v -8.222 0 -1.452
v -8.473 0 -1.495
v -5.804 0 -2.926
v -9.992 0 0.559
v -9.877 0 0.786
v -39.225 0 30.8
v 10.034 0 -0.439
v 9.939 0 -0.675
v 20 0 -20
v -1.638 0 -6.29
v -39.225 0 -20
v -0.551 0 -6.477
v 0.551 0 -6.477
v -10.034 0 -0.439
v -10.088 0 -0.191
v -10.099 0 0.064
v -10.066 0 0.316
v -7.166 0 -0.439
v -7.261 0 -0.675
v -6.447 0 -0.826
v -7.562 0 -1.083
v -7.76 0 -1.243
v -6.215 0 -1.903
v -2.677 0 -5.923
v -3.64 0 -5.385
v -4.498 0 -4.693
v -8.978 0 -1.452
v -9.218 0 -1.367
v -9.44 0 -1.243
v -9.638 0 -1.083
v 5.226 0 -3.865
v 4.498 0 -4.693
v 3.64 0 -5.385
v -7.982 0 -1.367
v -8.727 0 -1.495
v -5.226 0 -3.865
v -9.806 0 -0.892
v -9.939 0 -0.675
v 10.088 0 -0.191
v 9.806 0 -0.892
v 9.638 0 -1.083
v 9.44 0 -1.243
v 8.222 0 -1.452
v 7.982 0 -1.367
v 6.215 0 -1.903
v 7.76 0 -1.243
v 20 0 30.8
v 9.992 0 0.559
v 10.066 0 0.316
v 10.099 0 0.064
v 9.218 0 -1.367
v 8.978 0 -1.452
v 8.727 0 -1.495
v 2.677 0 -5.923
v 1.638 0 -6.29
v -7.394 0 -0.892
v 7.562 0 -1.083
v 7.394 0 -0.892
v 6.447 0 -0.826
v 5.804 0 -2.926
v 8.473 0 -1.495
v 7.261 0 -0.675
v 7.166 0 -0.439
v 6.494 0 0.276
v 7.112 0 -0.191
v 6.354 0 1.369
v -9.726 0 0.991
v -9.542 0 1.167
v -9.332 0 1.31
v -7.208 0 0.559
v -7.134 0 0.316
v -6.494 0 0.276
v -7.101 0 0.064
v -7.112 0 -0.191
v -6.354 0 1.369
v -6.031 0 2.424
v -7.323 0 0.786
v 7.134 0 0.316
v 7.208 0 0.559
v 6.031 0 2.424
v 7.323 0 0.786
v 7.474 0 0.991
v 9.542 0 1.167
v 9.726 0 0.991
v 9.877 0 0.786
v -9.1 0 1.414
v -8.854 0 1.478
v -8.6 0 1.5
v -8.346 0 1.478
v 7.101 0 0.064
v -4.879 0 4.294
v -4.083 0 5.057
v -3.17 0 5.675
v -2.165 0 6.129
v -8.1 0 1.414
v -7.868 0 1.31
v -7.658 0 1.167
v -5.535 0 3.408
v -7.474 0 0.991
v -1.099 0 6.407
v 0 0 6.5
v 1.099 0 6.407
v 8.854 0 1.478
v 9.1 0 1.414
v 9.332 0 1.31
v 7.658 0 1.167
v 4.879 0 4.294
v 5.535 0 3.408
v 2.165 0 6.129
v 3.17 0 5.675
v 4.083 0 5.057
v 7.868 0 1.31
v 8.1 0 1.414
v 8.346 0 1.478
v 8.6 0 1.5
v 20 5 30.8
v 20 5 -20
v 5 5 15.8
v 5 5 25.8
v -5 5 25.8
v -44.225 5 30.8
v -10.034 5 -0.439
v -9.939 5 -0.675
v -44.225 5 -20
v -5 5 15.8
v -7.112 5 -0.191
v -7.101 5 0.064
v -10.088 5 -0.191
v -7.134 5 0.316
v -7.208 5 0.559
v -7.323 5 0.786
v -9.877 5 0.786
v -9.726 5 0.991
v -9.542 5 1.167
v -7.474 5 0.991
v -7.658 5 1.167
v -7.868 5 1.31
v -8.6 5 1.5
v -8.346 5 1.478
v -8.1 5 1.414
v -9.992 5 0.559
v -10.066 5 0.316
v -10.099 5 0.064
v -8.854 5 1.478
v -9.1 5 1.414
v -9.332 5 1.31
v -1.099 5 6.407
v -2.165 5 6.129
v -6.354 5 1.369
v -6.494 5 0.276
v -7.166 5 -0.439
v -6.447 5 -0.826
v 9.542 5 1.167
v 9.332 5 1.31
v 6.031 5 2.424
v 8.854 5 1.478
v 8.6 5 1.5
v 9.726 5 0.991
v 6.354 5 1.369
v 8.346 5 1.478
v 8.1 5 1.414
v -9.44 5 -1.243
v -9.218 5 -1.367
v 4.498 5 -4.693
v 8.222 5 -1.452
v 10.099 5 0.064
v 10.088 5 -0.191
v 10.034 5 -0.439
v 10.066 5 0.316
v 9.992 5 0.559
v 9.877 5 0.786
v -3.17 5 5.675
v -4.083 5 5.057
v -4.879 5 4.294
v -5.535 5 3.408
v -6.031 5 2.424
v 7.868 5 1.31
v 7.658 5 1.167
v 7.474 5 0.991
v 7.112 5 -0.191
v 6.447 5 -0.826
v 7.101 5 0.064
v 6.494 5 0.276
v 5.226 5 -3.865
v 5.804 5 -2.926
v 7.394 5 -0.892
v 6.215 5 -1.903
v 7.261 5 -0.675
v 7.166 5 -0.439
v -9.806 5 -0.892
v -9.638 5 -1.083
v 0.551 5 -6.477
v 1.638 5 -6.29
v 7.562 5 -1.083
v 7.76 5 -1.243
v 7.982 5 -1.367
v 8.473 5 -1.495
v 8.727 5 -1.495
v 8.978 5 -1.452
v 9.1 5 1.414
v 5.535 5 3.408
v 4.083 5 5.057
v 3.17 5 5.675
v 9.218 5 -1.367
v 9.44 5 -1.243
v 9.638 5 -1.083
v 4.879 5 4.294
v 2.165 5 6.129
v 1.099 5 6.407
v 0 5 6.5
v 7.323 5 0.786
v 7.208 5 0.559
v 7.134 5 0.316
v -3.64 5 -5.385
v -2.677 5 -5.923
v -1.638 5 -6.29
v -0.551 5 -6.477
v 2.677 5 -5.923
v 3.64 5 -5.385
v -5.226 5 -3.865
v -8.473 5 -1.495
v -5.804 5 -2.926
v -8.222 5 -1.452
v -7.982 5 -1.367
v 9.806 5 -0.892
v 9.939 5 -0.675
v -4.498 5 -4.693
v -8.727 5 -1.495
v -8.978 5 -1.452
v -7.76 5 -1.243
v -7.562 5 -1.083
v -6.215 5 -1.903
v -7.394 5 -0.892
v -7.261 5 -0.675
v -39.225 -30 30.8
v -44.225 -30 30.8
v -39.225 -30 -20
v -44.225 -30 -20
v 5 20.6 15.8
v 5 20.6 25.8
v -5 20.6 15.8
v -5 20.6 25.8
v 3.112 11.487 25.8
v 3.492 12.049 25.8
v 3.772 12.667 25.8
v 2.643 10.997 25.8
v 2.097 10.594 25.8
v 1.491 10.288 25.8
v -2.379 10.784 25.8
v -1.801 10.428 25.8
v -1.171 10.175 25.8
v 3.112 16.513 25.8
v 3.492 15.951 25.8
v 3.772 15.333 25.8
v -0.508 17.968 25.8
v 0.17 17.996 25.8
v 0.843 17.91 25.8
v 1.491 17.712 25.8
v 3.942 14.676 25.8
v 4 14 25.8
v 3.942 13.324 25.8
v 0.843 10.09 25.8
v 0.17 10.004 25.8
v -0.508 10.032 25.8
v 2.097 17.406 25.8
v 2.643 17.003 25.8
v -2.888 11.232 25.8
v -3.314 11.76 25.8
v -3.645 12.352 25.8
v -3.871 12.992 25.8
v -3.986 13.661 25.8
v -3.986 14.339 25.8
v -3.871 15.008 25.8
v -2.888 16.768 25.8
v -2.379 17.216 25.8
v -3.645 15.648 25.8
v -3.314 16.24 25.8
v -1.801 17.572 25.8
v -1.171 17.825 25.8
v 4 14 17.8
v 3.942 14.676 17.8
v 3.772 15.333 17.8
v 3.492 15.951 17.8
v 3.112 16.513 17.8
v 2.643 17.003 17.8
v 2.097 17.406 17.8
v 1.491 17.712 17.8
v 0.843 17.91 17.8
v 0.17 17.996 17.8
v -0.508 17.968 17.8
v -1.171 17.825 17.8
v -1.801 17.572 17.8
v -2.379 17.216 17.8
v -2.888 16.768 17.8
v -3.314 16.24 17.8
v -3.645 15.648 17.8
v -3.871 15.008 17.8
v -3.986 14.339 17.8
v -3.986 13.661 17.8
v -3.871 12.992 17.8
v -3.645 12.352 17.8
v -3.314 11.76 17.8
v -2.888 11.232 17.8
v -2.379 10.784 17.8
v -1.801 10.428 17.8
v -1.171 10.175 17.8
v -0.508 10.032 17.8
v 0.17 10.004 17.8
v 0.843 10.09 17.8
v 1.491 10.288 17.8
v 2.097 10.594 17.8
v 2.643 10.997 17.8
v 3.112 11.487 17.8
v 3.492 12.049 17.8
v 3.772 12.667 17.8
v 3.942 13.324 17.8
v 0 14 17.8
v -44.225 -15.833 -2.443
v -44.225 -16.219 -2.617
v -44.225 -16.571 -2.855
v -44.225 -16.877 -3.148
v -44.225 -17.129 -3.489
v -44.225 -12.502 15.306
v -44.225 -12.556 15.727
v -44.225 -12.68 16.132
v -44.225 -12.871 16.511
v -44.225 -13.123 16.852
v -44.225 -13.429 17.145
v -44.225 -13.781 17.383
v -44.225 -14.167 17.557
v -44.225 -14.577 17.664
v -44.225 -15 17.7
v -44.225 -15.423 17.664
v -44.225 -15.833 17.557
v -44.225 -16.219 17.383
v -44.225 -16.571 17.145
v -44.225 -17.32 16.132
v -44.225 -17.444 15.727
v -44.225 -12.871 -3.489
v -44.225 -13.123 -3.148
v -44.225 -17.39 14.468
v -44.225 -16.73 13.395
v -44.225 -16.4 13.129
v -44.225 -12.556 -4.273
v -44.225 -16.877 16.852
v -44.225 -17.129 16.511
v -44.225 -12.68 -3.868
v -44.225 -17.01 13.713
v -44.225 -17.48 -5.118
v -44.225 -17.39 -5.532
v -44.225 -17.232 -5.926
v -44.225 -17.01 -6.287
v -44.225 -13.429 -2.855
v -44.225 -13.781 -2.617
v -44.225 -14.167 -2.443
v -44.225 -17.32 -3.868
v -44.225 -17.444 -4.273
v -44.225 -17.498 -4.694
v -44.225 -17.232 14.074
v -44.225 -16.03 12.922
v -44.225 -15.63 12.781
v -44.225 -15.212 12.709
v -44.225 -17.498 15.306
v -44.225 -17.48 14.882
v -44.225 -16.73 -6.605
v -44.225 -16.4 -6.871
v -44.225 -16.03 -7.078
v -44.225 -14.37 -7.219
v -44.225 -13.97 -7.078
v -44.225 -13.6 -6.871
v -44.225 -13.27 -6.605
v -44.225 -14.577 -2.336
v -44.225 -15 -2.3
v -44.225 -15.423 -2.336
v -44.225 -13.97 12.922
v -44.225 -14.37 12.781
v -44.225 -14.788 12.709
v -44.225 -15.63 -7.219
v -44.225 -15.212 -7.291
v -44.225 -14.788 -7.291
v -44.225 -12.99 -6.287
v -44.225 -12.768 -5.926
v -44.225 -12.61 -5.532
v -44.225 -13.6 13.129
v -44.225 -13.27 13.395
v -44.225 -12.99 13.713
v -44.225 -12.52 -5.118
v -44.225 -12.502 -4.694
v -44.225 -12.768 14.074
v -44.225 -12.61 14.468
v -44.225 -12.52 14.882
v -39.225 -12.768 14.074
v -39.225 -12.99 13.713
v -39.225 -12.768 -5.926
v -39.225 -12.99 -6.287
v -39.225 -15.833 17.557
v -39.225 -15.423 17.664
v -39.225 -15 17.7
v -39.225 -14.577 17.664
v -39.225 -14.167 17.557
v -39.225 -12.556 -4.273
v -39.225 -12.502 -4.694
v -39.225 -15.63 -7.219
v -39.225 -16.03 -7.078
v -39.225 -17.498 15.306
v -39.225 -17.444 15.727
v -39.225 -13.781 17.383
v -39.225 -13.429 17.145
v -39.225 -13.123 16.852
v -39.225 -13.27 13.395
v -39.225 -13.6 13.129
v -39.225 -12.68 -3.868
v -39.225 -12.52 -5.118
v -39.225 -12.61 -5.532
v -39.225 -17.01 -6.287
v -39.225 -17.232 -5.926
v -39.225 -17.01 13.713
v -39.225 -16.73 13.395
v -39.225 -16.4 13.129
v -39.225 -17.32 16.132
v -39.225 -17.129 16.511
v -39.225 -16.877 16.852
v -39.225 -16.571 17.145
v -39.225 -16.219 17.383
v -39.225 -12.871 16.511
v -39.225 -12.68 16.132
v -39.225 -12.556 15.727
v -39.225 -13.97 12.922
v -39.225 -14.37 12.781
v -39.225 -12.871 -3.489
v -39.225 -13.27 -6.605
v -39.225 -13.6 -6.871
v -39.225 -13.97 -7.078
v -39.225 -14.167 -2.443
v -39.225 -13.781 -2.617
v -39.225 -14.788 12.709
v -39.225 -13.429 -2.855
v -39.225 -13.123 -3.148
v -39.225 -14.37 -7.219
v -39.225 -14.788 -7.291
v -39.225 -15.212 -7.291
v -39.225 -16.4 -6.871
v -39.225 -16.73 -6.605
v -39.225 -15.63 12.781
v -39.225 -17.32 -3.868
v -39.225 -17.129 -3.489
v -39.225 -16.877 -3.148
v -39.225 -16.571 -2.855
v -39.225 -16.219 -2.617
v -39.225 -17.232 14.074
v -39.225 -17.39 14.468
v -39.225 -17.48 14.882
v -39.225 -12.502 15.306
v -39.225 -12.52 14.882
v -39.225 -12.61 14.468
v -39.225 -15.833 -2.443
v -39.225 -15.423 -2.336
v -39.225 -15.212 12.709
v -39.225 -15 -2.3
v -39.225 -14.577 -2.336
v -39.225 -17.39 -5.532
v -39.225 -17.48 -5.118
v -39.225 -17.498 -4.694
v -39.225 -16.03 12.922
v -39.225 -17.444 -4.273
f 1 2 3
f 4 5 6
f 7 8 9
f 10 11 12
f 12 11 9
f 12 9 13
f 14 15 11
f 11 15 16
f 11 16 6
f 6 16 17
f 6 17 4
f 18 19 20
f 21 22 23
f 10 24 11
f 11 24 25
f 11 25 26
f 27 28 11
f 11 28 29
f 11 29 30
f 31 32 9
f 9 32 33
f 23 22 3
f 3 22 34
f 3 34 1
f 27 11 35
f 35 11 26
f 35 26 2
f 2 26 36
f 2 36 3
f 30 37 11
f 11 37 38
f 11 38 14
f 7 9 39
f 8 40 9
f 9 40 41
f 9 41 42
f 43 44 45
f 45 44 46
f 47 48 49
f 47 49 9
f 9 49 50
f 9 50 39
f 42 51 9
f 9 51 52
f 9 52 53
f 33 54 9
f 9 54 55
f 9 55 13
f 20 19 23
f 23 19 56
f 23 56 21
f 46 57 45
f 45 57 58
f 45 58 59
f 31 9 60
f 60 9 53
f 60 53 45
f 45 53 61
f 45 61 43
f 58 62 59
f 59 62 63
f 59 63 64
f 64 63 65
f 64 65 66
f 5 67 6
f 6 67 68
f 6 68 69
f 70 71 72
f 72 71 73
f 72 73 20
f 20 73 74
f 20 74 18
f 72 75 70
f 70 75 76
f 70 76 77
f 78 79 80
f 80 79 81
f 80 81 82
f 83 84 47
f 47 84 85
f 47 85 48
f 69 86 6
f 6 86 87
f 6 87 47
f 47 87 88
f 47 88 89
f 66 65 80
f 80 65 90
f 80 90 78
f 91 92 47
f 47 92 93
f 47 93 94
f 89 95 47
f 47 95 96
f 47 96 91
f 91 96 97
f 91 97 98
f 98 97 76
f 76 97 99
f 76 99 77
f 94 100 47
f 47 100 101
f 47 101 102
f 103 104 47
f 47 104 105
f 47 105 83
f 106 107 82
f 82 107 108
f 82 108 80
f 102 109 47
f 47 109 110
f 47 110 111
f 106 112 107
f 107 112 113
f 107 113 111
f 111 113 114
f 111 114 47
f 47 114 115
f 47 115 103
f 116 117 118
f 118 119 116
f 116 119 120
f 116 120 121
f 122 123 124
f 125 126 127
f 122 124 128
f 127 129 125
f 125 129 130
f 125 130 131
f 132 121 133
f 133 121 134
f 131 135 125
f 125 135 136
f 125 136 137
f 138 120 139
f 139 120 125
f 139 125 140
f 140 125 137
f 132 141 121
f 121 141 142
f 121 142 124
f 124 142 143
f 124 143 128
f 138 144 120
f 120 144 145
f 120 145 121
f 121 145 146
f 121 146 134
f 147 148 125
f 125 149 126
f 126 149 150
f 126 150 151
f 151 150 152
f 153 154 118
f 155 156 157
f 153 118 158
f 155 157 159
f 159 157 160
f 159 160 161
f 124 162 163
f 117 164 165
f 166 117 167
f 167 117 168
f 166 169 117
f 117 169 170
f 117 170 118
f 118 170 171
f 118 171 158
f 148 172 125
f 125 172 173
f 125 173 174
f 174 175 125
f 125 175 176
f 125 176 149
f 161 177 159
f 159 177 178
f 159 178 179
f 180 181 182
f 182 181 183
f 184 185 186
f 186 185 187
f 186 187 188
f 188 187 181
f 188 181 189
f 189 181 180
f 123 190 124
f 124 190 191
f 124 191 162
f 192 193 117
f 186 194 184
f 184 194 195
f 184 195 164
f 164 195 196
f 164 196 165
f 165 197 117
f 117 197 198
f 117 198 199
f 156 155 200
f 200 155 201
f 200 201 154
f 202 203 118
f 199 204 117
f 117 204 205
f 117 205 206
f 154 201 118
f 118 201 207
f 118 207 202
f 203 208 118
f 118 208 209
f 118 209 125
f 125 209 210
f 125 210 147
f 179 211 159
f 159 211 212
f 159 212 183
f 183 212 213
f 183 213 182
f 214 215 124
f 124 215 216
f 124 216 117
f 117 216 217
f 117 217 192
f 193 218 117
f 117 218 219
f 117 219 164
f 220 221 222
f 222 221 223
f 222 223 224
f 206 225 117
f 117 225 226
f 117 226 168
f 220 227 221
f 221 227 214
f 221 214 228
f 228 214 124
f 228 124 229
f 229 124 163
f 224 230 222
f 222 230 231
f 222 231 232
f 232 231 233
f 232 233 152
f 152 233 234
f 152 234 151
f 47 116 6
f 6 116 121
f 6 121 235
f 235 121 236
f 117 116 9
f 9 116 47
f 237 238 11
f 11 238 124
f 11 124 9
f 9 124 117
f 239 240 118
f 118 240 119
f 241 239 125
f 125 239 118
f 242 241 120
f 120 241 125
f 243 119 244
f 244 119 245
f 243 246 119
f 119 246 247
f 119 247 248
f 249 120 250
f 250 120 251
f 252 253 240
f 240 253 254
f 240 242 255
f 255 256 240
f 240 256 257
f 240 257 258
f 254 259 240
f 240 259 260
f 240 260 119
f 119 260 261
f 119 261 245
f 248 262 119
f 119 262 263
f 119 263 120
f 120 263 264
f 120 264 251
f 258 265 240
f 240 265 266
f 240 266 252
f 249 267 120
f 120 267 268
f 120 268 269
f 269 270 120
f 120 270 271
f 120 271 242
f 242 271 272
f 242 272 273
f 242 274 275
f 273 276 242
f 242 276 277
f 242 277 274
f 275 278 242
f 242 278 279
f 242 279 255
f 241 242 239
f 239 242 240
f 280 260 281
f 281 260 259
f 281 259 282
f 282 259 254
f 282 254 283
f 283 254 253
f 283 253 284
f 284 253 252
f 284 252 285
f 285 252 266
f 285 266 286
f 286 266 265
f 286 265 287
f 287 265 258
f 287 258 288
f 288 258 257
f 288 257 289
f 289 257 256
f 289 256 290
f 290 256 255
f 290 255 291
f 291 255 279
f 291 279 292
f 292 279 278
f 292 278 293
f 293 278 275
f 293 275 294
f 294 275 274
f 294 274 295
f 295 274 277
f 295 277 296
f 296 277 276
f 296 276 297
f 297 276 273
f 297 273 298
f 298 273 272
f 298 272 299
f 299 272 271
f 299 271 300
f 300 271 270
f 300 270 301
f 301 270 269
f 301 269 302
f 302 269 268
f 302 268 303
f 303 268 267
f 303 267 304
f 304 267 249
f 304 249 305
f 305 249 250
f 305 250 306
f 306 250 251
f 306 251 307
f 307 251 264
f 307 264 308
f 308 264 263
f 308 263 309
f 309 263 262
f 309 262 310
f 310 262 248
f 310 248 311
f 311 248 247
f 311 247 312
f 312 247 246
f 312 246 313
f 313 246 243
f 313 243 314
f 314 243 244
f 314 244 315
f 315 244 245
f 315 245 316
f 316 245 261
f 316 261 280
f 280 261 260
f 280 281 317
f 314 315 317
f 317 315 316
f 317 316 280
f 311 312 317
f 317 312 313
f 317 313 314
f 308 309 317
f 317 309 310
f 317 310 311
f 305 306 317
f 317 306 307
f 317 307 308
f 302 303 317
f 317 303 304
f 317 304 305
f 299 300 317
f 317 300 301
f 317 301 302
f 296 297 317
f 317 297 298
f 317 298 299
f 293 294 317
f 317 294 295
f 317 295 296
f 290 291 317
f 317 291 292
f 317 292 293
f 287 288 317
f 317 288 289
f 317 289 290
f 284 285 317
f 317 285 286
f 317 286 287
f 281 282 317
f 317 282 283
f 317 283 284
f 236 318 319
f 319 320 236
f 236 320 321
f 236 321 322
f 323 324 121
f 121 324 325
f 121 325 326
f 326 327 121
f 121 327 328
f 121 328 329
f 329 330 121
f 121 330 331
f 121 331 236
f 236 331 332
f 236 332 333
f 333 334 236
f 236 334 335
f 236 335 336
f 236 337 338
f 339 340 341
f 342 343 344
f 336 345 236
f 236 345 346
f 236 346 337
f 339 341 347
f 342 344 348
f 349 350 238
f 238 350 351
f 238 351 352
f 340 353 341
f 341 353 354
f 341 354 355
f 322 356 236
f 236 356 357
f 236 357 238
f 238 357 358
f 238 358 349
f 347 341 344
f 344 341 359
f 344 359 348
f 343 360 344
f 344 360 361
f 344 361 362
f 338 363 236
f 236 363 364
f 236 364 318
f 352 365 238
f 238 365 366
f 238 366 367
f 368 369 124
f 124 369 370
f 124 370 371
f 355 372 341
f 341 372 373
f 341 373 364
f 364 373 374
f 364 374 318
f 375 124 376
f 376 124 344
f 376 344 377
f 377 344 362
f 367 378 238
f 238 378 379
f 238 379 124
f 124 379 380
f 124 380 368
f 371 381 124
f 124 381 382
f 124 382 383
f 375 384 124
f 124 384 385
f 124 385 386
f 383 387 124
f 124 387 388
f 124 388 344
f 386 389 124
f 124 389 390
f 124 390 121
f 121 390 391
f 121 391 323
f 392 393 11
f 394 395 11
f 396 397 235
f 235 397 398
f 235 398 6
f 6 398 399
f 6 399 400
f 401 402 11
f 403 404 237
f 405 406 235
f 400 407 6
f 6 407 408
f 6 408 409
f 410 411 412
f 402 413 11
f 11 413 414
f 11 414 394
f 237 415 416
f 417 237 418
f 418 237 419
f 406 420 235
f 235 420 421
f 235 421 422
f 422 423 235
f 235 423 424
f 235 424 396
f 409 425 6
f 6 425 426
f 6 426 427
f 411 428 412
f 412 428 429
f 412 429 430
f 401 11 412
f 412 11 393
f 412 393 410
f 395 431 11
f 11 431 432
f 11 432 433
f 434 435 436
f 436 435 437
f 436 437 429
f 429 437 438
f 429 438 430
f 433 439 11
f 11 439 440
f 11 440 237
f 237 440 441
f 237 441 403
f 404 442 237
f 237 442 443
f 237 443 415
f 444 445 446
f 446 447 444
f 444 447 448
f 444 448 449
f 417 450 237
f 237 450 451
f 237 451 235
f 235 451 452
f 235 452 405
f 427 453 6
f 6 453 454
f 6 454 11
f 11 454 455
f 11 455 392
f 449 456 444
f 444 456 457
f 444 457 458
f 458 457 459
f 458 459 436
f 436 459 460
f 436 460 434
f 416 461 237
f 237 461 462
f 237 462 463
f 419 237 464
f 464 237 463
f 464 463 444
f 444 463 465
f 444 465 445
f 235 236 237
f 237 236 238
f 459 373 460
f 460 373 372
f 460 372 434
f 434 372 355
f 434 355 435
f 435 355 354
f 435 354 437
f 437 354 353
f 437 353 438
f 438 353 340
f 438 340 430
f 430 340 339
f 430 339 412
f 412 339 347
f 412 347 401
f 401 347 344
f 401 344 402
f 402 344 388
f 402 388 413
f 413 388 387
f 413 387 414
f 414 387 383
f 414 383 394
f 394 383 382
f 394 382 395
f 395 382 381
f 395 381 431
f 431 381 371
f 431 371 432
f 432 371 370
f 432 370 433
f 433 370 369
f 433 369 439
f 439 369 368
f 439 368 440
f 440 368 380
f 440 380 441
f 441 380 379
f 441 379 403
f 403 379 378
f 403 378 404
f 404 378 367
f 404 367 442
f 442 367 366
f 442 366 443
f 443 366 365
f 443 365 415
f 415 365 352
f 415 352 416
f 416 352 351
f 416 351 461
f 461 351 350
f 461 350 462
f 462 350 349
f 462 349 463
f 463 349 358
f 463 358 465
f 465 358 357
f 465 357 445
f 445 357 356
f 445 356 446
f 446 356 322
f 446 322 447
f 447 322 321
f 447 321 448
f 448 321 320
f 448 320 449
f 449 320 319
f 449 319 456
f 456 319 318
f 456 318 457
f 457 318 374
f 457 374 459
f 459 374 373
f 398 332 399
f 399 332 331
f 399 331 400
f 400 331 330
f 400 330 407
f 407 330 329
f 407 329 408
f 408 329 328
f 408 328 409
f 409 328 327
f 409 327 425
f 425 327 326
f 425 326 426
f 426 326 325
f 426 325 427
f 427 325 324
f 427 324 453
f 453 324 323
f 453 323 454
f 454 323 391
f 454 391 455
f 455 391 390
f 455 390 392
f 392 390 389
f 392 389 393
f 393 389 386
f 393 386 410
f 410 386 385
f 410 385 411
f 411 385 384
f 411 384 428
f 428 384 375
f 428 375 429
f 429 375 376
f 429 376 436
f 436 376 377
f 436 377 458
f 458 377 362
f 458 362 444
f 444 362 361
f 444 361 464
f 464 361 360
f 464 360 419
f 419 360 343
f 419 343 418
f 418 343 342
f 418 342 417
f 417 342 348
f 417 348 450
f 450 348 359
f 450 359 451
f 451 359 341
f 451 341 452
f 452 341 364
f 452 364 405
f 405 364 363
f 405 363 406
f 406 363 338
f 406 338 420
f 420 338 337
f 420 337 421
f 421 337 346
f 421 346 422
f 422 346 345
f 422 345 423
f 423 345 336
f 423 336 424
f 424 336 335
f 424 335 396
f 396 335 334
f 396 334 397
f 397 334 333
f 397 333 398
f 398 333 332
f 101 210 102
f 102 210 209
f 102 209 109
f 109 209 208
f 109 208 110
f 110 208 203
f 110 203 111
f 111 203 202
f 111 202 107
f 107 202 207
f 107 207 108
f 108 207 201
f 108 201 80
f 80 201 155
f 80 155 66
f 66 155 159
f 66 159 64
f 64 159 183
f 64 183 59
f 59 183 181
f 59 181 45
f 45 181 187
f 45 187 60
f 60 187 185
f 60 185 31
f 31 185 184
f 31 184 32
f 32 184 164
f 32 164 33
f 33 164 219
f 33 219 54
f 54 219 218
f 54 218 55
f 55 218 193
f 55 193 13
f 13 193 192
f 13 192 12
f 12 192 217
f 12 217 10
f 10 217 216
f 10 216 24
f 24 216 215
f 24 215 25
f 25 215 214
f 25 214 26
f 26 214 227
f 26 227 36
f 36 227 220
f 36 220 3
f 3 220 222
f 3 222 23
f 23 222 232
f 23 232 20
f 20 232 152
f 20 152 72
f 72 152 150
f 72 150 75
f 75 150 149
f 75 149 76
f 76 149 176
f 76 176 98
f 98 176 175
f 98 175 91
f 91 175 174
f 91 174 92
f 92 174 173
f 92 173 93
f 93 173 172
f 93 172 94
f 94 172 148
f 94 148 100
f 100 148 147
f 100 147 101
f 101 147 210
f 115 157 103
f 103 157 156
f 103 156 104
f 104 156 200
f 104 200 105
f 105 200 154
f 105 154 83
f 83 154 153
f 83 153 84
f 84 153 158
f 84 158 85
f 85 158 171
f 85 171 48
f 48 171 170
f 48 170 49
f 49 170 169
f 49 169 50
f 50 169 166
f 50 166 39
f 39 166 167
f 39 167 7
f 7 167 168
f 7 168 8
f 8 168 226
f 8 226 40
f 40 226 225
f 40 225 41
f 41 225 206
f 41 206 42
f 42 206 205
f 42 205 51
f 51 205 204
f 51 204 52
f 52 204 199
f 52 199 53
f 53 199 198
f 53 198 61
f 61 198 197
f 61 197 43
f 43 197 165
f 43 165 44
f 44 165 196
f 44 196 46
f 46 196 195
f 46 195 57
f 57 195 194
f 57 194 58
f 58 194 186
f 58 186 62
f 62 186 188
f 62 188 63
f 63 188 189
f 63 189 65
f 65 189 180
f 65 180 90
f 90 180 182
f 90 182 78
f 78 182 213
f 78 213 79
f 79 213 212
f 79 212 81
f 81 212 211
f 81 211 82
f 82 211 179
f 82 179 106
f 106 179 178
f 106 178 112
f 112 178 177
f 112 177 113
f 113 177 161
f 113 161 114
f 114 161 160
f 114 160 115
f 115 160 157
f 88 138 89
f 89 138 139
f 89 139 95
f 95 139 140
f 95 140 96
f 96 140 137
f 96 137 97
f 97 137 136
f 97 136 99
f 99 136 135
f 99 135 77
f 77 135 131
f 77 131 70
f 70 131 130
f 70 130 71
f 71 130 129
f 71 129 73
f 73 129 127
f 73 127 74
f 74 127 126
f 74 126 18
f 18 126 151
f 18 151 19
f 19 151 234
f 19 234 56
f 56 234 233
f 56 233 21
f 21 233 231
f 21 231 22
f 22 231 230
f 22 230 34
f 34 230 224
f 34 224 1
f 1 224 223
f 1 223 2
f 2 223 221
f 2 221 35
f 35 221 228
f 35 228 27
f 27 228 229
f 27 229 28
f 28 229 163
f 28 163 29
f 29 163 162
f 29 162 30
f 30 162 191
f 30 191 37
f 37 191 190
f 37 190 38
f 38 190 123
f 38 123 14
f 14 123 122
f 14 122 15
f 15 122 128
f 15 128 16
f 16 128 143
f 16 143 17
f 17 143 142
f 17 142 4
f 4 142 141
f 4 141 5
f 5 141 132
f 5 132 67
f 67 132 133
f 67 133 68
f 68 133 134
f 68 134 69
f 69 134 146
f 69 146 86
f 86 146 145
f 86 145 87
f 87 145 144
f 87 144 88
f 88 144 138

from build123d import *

# Parameters (mm, degrees)
SKETCH3_W           = 40
SKETCH3_H           = 50.8
BOSS_EXTRUDE1_DEPTH = 5
SKETCH4_W           = 10
SKETCH4_H           = 10
BOSS_EXTRUDE2_DEPTH = 15.6
SKETCH5_R           = 4
CUT_EXTRUDE4_DEPTH  = 8
SKETCH6_W           = 50.8
SKETCH6_H           = 5
BOSS_EXTRUDE3_DEPTH = 24.225
SKETCH8_W           = 5
SKETCH8_H           = 50.8
BOSS_EXTRUDE4_DEPTH = 30
SKETCH9_R           = 2.5
CUT_EXTRUDE5_DEPTH  = 5
SKETCH10_R          = 6.5
SKETCH10_R_2        = 1.5
CUT_EXTRUDE6_DEPTH  = 5


with BuildPart() as part:
    # Sketch3 → Boss-Extrude1 (new body)
    with BuildSketch(Plane(origin=(0, 0, 0), x_dir=(1, 0, 0), z_dir=(0, 1, 0))):
        with Locations((0, -5.4)):
            Rectangle(SKETCH3_W, SKETCH3_H)
    extrude(amount=BOSS_EXTRUDE1_DEPTH)

    # Sketch4 → Boss-Extrude2 (add)
    with BuildSketch(Plane(origin=(0, 5, 0), x_dir=(1, 0, 0), z_dir=(0, 1, 0))):
        with Locations((0, -20.8)):
            Rectangle(SKETCH4_W, SKETCH4_H)
    extrude(amount=BOSS_EXTRUDE2_DEPTH)

    # Sketch5 → Cut-Extrude4 (cut)
    with BuildSketch(Plane.XY.offset(25.8)):
        with Locations((0, 14)):
            Circle(SKETCH5_R)
    extrude(amount=-CUT_EXTRUDE4_DEPTH, mode=Mode.SUBTRACT)

    # Sketch6 → Boss-Extrude3 (add)
    with BuildSketch(Plane.ZY.offset(20)):
        with Locations((5.4, 2.5)):
            Rectangle(SKETCH6_W, SKETCH6_H)
    extrude(amount=BOSS_EXTRUDE3_DEPTH)

    # Sketch8 → Boss-Extrude4 (add)
    with BuildSketch(Plane.XZ):
        with Locations((-41.725, 5.4)):
            Rectangle(SKETCH8_W, SKETCH8_H)
    extrude(amount=BOSS_EXTRUDE4_DEPTH)

    # Sketch9 → Cut-Extrude5 (cut)
    with BuildSketch(Plane.ZY.offset(44.225)):
        with Locations((-4.8, -15)):
            Circle(SKETCH9_R)
        with Locations((15.2, -15)):
            Circle(SKETCH9_R)
    extrude(amount=-CUT_EXTRUDE5_DEPTH, mode=Mode.SUBTRACT)

    # Sketch10 → Cut-Extrude6 (cut)
    with BuildSketch(Plane(origin=(0, 5, 0), x_dir=(1, 0, 0), z_dir=(0, 1, 0))):
        with Locations(Location((0, 0, 0), (0, 0, 270))):
            Circle(SKETCH10_R)
        with Locations(Location((-8.6, 0, 0), (0, 0, 270))):
            Circle(SKETCH10_R_2)
        with Locations(Location((8.6, 0, 0), (0, 0, 270))):
            Circle(SKETCH10_R_2)
    extrude(amount=-CUT_EXTRUDE6_DEPTH, mode=Mode.SUBTRACT)


solid = part.part
